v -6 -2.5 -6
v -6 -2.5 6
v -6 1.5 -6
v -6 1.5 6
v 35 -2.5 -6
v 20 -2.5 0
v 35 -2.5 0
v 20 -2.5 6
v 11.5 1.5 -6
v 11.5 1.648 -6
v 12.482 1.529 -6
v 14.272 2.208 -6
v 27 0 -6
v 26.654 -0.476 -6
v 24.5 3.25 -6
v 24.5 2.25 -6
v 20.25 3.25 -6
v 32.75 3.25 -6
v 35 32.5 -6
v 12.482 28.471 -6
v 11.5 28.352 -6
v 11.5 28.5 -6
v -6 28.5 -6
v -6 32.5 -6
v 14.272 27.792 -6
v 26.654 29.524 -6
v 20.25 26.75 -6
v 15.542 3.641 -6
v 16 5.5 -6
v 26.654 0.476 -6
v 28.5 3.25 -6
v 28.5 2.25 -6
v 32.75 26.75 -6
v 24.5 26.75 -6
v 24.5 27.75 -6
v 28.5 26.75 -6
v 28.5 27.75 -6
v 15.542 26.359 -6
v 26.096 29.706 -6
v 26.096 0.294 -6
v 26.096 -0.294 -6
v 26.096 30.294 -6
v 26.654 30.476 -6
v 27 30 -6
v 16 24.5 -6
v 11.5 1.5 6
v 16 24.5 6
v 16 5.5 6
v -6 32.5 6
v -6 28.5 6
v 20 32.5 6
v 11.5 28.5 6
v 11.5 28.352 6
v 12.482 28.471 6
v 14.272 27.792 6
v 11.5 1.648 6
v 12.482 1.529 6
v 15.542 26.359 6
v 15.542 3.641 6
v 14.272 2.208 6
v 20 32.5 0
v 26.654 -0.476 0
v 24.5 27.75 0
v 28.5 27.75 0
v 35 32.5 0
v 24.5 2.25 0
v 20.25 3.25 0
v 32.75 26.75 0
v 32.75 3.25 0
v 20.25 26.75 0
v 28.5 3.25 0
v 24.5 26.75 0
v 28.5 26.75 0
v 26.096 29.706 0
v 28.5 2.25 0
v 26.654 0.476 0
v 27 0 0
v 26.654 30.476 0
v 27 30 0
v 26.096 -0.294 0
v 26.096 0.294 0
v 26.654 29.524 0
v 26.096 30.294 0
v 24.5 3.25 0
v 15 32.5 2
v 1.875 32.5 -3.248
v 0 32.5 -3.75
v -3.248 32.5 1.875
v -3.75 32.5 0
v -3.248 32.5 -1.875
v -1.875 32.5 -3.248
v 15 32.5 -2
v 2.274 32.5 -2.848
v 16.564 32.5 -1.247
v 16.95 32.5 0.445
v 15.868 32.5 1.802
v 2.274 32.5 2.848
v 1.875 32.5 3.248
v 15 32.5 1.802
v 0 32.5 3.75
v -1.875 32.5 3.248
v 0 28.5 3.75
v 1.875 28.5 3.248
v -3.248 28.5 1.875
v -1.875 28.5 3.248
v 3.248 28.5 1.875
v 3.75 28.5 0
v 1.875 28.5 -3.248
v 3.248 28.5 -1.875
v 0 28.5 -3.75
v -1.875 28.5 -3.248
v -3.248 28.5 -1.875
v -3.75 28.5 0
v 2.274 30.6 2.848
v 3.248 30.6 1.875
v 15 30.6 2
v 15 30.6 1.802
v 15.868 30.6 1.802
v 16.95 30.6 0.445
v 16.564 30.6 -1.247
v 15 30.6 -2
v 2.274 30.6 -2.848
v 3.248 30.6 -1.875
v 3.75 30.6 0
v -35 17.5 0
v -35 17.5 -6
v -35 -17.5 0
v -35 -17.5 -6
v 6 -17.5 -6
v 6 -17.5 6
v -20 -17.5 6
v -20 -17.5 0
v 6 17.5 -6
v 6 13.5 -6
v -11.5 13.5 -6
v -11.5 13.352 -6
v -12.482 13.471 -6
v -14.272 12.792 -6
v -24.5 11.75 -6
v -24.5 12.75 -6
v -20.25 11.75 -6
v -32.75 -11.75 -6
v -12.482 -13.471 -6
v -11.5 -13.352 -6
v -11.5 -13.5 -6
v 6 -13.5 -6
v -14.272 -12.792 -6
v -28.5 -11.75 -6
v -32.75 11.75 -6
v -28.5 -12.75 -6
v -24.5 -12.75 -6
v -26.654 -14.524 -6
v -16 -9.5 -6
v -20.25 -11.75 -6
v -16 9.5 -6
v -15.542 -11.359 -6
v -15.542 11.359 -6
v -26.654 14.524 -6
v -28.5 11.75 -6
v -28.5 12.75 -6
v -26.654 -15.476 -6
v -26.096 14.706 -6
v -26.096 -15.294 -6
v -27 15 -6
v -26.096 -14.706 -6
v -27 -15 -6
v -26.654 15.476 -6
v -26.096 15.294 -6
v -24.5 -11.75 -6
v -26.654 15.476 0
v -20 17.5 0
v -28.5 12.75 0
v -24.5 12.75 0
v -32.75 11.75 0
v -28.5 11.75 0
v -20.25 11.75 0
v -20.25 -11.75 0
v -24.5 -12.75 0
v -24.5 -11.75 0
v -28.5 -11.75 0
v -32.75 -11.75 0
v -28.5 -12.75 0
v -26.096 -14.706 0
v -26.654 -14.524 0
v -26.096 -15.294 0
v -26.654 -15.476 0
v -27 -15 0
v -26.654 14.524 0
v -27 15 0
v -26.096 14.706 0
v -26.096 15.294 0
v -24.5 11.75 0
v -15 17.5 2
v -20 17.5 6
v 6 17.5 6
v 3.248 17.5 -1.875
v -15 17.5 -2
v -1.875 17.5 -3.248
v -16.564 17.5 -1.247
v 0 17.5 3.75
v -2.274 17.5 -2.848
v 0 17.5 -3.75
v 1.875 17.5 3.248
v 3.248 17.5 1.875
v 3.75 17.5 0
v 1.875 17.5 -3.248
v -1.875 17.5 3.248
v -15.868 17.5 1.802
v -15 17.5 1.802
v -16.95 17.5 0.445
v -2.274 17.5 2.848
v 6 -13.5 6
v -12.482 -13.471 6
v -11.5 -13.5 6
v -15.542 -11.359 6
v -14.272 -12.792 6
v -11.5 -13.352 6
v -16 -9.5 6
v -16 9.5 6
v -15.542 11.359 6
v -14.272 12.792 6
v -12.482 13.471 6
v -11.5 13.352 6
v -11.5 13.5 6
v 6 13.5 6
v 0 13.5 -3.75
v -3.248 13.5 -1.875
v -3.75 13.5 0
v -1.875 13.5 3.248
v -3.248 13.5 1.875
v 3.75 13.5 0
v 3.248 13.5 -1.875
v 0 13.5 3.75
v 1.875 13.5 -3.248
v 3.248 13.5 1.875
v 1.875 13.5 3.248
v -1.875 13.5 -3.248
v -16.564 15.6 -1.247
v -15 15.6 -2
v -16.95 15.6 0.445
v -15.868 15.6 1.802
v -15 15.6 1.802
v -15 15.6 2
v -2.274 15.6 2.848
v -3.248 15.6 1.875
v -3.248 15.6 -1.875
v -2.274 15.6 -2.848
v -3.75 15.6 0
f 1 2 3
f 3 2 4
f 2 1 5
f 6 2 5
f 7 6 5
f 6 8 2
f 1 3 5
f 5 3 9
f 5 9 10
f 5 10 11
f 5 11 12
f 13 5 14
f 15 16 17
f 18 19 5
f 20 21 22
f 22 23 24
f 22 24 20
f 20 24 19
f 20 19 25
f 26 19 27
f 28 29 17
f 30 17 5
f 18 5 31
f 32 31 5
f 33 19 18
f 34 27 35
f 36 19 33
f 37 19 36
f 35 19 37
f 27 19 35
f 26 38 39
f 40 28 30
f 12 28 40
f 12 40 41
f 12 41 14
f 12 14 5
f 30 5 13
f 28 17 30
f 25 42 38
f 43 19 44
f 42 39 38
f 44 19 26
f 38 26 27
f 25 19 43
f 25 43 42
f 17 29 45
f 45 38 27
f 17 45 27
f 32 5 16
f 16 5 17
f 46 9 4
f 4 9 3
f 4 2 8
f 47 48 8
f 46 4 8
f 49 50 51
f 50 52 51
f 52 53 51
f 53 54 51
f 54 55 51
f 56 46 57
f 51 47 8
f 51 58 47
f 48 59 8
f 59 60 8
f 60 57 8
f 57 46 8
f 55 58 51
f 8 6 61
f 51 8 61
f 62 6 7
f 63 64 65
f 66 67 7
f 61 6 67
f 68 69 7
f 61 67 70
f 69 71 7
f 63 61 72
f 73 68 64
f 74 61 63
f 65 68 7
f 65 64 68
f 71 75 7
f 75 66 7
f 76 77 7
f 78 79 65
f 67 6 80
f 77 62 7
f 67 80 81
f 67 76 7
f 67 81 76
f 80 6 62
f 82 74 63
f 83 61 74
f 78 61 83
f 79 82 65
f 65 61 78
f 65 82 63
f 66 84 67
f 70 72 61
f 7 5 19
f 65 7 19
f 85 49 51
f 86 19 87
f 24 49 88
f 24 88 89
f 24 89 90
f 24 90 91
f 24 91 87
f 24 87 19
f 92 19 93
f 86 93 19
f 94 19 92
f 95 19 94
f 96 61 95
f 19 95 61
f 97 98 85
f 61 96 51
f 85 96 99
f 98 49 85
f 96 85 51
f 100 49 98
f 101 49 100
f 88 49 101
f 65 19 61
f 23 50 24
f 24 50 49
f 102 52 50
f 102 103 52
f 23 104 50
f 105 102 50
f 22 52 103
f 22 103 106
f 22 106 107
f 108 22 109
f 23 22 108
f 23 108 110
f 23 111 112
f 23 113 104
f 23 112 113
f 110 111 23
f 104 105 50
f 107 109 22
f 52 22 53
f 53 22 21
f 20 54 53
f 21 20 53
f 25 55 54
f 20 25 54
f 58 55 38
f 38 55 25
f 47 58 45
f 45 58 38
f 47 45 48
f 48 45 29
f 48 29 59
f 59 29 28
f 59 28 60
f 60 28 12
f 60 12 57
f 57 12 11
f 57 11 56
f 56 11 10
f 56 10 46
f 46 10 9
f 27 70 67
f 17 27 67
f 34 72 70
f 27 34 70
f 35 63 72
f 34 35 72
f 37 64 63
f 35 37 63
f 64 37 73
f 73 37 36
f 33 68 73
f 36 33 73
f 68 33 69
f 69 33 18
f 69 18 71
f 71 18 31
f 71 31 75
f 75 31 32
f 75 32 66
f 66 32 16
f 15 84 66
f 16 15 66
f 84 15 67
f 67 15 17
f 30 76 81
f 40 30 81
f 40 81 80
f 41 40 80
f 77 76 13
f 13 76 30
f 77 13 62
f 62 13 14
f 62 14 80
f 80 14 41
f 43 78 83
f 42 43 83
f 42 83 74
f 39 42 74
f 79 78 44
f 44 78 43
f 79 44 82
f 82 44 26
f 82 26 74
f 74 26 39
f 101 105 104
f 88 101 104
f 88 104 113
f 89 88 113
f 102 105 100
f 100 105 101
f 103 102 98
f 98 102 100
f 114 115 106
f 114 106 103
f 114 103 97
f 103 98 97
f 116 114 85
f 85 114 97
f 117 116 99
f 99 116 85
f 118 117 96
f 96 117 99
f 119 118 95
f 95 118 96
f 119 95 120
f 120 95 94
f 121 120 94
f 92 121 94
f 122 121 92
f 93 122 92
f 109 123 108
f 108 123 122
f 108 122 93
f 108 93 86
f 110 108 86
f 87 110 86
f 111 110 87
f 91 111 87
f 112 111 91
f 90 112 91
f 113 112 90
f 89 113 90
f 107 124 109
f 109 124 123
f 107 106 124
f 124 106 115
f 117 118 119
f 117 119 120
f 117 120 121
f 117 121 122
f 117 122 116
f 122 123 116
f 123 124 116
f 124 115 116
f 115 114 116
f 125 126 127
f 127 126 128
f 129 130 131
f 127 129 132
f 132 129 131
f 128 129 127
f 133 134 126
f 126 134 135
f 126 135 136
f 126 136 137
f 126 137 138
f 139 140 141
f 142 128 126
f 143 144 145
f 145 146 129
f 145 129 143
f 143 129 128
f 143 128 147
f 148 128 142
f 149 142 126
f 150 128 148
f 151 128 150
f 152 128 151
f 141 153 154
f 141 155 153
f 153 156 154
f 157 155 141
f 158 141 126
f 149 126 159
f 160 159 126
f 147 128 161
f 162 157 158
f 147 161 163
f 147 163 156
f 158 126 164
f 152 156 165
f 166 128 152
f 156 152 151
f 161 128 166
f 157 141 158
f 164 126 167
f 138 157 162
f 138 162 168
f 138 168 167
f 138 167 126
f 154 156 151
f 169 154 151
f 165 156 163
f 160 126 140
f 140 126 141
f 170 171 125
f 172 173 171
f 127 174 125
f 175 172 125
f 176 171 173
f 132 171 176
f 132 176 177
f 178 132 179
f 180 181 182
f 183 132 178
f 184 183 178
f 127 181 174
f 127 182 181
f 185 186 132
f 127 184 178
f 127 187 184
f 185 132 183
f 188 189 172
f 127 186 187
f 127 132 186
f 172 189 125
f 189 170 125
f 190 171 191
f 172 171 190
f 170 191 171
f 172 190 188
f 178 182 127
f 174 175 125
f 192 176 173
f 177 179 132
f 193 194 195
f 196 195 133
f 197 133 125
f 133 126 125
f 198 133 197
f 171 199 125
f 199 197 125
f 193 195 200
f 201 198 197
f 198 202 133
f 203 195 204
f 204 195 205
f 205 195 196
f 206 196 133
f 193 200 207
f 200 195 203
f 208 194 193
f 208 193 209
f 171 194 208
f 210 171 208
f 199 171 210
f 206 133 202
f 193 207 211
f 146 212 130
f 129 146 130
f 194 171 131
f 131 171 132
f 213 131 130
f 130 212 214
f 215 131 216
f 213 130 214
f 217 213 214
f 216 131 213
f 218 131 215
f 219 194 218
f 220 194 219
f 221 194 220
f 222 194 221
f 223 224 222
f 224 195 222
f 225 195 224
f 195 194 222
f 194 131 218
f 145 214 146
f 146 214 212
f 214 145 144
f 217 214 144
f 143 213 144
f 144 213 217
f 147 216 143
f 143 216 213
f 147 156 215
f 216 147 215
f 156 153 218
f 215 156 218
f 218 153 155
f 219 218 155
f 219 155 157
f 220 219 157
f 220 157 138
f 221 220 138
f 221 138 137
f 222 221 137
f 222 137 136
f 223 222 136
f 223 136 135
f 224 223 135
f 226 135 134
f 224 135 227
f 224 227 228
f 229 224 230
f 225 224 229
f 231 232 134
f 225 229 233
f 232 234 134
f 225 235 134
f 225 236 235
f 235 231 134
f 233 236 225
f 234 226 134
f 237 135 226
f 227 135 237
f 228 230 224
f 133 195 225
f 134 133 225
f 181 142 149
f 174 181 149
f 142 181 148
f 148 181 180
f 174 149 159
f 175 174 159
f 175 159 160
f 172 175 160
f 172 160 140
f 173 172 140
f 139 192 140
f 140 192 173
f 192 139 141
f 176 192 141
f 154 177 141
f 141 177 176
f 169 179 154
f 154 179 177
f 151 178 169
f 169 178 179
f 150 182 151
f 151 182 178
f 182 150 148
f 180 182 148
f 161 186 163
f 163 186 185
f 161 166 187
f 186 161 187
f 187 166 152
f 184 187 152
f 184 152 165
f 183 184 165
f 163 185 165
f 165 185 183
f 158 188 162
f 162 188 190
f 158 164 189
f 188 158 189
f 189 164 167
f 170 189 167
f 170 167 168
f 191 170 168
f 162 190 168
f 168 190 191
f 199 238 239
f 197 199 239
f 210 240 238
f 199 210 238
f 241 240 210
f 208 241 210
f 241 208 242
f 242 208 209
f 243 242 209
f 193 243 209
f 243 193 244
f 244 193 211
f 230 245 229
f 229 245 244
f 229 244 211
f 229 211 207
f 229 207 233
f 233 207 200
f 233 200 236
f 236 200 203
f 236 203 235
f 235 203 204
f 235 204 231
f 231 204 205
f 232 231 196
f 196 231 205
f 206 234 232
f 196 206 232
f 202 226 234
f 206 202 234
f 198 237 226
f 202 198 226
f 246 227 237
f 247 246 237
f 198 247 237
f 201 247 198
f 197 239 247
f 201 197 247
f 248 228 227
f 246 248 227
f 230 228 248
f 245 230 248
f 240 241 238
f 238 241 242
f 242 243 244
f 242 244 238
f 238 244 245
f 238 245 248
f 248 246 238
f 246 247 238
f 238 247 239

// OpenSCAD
// file: servo_arm.scad
//servo_arm();

module servo_arm(body_r = 7.5/2, arm_r1 = 6/2, arm_r2 = 4/2, arm_len = 15, arm_t = 2, body_t = 5) {
	cylinder(r = body_r, h = body_t);
	
	linear_extrude(height = arm_t) {
		circle(r = arm_r1);
		translate([0,arm_len,0]) circle(r = arm_r2);
		polygon(points = [ [-arm_r1, 0], [arm_r1, 0], [arm_r2, arm_len], [-arm_r2, arm_len] ]);
	}
}
// file: servo.scad
// 3dof quad
//
// servo



module servo(a = 30, b = 23, c = 27, d = 12, e = 33, f = 16, flange_thickness = 2, top_cap_pct = 0.5) {
	rem_height = c - flange_thickness - f;
	top_cap_height = rem_height * top_cap_pct;
	roundel_height = rem_height * (1.0 - top_cap_pct);	

	translate([0, -d/2, 0]) union() {
		translate([0,0,flange_thickness/2]) cube([d, e, flange_thickness], center = true);
		translate([0,0,-f/2]) cube([d, b, f], center = true);
		translate([0,0,flange_thickness + top_cap_height/2]) cube([d, b, top_cap_height], center = true);
		translate([0, -(d), -8]) cube ([3, 1, f], center = true);
		translate([0, d, -8]) cube ([3, 1, f], center = true);
		translate([0,b/2 - d/2,flange_thickness + top_cap_height]) union() {
			cylinder(r = d/2, h = roundel_height);
			translate([0,0,roundel_height]) cylinder(r = 3, h = 3);
		}
	}
}

//color("blue") servo();
// main file
// 3dof quad 
//
// coxa

include <servo.scad>
include <servo_arm.scad>

module coxa(servo_height = 27, servo_clearance = 7) {
	arm_thick = 4;
	servo_width = 12;
	flange_length = 3;
	base_thick = 4;
	root_radius = 4;

	fork_width = servo_width + flange_length + servo_clearance + base_thick;
	fork_height = arm_thick * 2 + servo_height;
	
	servo_cog_offset = 6;

	translate([fork_width/2 - servo_cog_offset, 0, 0]) union() {
		difference() {
			cube([fork_width, fork_height, 12], center = true);
			translate([-root_radius/2 - base_thick/2 - 1, 0, 0]) cube([1 + servo_width + flange_length + servo_clearance - root_radius, servo_height, 13], center = true);
			translate([-base_thick/2, 0, 0]) cube([servo_width + flange_length + servo_clearance, servo_height-2*root_radius, 13], center = true);
			translate([5, -9.5, 0]) cylinder(r = root_radius, h = 13, center = true);	
			translate([5, 9.5, 0]) cylinder(r = root_radius, h = 13, center = true);	
			color("white") translate([servo_cog_offset - fork_width/2, 0.1 + fork_height/2, 0]) rotate([90, 90, 0]) servo_arm();
		}

		translate([fork_width/2 + 15/2, 0, -3]) {
			difference() {	
				cube([15, fork_height, 6], center = true);
				translate([-1, 0, 0]) cube([12.5, 23.5, 7], center = true);
				for(i = [-1, 1]) {
					translate([-1, i * 30/2, 0]) cylinder(r=.5, h=20, center = true);
				}
				translate([-1, 12.25, 0]) cube([4, 1, 25], center = true);
				translate([-1, -12.25, 0]) cube([4, 1, 25], center = true);
			}
		}
	}

}

translate([0,15,0]) coxa(); 
scale([-1, 1, 1]) coxa();
